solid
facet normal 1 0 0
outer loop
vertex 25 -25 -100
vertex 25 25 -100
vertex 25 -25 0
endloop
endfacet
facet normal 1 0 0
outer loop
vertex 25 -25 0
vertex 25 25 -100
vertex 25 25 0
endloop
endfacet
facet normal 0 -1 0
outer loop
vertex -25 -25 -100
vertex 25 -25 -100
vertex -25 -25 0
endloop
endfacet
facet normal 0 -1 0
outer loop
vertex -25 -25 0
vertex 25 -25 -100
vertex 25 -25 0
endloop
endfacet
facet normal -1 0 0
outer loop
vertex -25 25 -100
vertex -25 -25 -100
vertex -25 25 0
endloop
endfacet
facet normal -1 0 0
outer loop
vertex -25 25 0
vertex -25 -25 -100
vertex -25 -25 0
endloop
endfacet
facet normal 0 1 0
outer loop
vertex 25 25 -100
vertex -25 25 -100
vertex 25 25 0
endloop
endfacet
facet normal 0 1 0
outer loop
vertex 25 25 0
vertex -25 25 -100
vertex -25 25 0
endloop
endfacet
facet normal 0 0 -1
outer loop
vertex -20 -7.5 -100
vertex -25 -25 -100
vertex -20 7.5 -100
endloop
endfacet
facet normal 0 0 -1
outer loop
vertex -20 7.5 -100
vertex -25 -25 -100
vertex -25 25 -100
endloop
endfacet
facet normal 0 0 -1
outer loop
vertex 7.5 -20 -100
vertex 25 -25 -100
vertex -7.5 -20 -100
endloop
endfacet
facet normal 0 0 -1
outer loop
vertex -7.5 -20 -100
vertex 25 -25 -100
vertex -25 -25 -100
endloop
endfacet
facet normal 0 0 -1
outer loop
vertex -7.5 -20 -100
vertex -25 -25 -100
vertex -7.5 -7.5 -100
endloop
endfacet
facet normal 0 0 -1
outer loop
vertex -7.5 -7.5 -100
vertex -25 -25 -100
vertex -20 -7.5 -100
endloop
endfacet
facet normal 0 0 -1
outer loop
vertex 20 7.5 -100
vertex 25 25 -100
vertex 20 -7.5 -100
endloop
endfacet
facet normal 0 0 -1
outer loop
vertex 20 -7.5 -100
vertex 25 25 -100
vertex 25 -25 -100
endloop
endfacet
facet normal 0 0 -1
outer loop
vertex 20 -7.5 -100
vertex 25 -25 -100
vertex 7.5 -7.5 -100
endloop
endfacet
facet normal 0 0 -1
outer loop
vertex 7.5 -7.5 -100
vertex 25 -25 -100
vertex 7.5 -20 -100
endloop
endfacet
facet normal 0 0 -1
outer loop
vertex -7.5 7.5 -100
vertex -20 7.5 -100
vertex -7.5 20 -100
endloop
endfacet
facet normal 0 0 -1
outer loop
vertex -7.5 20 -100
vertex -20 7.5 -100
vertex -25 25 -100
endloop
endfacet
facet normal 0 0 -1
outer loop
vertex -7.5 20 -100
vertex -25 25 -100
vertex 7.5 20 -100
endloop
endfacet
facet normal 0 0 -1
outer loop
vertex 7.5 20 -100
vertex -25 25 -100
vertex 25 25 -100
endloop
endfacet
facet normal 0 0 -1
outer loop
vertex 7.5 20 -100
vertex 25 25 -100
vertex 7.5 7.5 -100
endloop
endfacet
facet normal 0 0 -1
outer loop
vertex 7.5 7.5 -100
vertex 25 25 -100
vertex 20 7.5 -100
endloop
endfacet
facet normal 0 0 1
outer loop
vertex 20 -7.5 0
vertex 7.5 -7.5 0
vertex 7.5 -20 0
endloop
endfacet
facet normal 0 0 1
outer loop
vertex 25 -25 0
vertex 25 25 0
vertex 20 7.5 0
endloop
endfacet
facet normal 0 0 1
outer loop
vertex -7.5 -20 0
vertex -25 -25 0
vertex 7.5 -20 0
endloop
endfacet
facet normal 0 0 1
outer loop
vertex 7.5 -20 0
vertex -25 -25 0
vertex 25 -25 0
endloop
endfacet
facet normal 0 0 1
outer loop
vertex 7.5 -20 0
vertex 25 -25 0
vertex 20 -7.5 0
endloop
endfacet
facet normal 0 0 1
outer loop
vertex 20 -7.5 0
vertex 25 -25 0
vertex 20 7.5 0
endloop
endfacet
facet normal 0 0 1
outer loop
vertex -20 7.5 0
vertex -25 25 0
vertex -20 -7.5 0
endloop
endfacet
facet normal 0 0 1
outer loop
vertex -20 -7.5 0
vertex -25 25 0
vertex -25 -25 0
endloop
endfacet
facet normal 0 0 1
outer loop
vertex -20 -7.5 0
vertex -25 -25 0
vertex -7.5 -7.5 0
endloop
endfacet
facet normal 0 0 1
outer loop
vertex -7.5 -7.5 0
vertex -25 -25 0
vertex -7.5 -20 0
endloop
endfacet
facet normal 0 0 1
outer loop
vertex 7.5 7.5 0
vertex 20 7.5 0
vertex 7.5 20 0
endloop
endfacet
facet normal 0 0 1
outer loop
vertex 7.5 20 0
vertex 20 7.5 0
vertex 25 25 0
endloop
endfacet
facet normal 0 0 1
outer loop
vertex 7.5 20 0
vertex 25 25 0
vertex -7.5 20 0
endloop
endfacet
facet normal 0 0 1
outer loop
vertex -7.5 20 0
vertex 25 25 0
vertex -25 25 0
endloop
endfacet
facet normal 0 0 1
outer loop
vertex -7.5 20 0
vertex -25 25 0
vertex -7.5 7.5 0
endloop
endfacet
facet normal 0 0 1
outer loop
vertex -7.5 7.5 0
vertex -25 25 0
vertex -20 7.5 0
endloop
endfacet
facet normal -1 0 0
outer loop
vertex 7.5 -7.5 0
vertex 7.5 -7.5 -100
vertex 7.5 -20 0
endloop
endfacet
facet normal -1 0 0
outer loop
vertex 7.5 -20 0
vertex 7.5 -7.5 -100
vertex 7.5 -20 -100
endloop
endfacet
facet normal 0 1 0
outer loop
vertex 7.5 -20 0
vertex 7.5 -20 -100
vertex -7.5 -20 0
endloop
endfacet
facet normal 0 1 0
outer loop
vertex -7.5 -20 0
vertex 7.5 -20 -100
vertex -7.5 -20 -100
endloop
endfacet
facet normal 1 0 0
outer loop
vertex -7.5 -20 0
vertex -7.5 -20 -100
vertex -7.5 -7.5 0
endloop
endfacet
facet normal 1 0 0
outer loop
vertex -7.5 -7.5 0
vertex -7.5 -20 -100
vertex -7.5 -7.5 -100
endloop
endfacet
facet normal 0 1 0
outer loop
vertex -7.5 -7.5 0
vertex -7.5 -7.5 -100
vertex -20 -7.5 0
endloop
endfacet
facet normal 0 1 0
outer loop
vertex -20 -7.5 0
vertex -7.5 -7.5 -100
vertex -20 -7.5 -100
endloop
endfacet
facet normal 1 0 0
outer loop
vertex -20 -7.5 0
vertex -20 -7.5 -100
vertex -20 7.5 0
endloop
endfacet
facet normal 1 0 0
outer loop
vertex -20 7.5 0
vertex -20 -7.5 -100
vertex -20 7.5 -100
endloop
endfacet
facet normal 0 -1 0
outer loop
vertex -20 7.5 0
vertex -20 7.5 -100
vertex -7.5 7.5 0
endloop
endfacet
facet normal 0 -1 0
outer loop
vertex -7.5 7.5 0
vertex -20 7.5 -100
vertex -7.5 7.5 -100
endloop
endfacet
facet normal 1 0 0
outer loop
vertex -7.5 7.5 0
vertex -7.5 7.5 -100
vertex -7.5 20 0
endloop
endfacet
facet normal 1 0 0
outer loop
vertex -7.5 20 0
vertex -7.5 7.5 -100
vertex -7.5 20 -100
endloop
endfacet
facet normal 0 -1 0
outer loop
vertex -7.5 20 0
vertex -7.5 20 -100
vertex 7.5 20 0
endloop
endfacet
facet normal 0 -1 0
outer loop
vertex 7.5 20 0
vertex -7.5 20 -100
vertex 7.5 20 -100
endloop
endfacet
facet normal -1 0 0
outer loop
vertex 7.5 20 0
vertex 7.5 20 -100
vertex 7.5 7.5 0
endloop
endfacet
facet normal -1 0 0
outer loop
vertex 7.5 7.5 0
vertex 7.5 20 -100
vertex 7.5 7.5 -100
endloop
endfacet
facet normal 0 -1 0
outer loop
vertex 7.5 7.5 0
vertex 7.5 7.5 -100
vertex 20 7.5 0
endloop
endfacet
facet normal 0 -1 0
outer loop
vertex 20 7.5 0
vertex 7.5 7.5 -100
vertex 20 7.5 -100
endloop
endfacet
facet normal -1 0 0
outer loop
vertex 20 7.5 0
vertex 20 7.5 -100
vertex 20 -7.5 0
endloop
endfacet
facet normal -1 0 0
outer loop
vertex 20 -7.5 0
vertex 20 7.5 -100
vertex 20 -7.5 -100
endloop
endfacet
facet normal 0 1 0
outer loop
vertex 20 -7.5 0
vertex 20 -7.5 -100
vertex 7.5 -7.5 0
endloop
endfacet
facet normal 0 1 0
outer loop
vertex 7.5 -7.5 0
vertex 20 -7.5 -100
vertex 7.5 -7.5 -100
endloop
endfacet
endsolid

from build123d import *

# Parameters (mm, degrees)
SKETCH1_W           = 50
SKETCH1_H           = 50
BOSS_EXTRUDE1_DEPTH = 100
CUT_EXTRUDE1_DEPTH  = 400


with BuildPart() as part:
    # Sketch1 → Boss-Extrude1 (new body)
    with BuildSketch(Plane.XY):
        Rectangle(SKETCH1_W, SKETCH1_H)
    extrude(amount=-BOSS_EXTRUDE1_DEPTH)

    # Sketch2 → Cut-Extrude1 (cut)
    with BuildSketch(Plane.XY):
        Polygon((7.5, 7.5), (20, 7.5), (20, -7.5), (7.5, -7.5), (7.5, -20), (-7.5, -20), (-7.5, -7.5), (-20, -7.5), (-20, 7.5), (-7.5, 7.5), (-7.5, 20), (7.5, 20), align=None)
    extrude(amount=-CUT_EXTRUDE1_DEPTH, mode=Mode.SUBTRACT)


solid = part.part
